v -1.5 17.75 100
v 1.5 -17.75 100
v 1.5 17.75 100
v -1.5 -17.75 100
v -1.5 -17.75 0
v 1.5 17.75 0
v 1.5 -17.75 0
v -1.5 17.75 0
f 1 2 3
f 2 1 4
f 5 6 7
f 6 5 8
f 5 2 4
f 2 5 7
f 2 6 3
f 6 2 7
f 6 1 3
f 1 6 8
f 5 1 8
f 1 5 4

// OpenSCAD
// file: Inlet.scad
$fn = 100;
tiny = 0.01;


/******************************************************
 * dx,dy: Maße, wie bei 'Boden' angegeben.
 *****************************************************/
module inlet_top_down(dx,dy) {
  h1 = 3;  
  dx1 = 5.9;
  dx2 = 4.0; // vier mal Fase an Ecken

  difference() {
     translate([0,0,h1/2]) cube([dx-2*dx1,dy-2*dx1,h1], true); 
     translate([+dx/2-dx1,+dy/2-dx1,h1/2-tiny]) rotate([0,0,45]) cube([dx2,dx2,h1+3*tiny], true);
     translate([+dx/2-dx1,-dy/2+dx1,h1/2-tiny]) rotate([0,0,45]) cube([dx2,dx2,h1+3*tiny], true);
     translate([-dx/2+dx1,+dy/2-dx1,h1/2-tiny]) rotate([0,0,45]) cube([dx2,dx2,h1+3*tiny], true);
     translate([-dx/2+dx1,-dy/2+dx1,h1/2-tiny]) rotate([0,0,45]) cube([dx2,dx2,h1+3*tiny], true);
     }
}


/******************************************************
 * dy: Maß, wie bei 'Boden' angegeben.
 * h:  Maß, wie bei 'Kante' angegeben.
 *****************************************************/
module inlet_front_back(h,dy) {
  h1 = 3;
  dy1 = 12+12.5;
  translate([0,0,h/2]) cube([h1,dy-dy1,h], true);
}


/******************************************************
 * dx: Maß, wie bei 'Boden' angegeben.
 * h:  Maß, wie bei 'Kante' angegeben.
 *****************************************************/
module inlet_left_right(h,dx) {
  h1 = 3;
  dx1 = 12+12.5;
  translate([0,0,h/2]) cube([dx-dx1,h1,h], true);
}
// main file
$fn = 100;

use <Inlet.scad>


inlet_front_back(100,60);
